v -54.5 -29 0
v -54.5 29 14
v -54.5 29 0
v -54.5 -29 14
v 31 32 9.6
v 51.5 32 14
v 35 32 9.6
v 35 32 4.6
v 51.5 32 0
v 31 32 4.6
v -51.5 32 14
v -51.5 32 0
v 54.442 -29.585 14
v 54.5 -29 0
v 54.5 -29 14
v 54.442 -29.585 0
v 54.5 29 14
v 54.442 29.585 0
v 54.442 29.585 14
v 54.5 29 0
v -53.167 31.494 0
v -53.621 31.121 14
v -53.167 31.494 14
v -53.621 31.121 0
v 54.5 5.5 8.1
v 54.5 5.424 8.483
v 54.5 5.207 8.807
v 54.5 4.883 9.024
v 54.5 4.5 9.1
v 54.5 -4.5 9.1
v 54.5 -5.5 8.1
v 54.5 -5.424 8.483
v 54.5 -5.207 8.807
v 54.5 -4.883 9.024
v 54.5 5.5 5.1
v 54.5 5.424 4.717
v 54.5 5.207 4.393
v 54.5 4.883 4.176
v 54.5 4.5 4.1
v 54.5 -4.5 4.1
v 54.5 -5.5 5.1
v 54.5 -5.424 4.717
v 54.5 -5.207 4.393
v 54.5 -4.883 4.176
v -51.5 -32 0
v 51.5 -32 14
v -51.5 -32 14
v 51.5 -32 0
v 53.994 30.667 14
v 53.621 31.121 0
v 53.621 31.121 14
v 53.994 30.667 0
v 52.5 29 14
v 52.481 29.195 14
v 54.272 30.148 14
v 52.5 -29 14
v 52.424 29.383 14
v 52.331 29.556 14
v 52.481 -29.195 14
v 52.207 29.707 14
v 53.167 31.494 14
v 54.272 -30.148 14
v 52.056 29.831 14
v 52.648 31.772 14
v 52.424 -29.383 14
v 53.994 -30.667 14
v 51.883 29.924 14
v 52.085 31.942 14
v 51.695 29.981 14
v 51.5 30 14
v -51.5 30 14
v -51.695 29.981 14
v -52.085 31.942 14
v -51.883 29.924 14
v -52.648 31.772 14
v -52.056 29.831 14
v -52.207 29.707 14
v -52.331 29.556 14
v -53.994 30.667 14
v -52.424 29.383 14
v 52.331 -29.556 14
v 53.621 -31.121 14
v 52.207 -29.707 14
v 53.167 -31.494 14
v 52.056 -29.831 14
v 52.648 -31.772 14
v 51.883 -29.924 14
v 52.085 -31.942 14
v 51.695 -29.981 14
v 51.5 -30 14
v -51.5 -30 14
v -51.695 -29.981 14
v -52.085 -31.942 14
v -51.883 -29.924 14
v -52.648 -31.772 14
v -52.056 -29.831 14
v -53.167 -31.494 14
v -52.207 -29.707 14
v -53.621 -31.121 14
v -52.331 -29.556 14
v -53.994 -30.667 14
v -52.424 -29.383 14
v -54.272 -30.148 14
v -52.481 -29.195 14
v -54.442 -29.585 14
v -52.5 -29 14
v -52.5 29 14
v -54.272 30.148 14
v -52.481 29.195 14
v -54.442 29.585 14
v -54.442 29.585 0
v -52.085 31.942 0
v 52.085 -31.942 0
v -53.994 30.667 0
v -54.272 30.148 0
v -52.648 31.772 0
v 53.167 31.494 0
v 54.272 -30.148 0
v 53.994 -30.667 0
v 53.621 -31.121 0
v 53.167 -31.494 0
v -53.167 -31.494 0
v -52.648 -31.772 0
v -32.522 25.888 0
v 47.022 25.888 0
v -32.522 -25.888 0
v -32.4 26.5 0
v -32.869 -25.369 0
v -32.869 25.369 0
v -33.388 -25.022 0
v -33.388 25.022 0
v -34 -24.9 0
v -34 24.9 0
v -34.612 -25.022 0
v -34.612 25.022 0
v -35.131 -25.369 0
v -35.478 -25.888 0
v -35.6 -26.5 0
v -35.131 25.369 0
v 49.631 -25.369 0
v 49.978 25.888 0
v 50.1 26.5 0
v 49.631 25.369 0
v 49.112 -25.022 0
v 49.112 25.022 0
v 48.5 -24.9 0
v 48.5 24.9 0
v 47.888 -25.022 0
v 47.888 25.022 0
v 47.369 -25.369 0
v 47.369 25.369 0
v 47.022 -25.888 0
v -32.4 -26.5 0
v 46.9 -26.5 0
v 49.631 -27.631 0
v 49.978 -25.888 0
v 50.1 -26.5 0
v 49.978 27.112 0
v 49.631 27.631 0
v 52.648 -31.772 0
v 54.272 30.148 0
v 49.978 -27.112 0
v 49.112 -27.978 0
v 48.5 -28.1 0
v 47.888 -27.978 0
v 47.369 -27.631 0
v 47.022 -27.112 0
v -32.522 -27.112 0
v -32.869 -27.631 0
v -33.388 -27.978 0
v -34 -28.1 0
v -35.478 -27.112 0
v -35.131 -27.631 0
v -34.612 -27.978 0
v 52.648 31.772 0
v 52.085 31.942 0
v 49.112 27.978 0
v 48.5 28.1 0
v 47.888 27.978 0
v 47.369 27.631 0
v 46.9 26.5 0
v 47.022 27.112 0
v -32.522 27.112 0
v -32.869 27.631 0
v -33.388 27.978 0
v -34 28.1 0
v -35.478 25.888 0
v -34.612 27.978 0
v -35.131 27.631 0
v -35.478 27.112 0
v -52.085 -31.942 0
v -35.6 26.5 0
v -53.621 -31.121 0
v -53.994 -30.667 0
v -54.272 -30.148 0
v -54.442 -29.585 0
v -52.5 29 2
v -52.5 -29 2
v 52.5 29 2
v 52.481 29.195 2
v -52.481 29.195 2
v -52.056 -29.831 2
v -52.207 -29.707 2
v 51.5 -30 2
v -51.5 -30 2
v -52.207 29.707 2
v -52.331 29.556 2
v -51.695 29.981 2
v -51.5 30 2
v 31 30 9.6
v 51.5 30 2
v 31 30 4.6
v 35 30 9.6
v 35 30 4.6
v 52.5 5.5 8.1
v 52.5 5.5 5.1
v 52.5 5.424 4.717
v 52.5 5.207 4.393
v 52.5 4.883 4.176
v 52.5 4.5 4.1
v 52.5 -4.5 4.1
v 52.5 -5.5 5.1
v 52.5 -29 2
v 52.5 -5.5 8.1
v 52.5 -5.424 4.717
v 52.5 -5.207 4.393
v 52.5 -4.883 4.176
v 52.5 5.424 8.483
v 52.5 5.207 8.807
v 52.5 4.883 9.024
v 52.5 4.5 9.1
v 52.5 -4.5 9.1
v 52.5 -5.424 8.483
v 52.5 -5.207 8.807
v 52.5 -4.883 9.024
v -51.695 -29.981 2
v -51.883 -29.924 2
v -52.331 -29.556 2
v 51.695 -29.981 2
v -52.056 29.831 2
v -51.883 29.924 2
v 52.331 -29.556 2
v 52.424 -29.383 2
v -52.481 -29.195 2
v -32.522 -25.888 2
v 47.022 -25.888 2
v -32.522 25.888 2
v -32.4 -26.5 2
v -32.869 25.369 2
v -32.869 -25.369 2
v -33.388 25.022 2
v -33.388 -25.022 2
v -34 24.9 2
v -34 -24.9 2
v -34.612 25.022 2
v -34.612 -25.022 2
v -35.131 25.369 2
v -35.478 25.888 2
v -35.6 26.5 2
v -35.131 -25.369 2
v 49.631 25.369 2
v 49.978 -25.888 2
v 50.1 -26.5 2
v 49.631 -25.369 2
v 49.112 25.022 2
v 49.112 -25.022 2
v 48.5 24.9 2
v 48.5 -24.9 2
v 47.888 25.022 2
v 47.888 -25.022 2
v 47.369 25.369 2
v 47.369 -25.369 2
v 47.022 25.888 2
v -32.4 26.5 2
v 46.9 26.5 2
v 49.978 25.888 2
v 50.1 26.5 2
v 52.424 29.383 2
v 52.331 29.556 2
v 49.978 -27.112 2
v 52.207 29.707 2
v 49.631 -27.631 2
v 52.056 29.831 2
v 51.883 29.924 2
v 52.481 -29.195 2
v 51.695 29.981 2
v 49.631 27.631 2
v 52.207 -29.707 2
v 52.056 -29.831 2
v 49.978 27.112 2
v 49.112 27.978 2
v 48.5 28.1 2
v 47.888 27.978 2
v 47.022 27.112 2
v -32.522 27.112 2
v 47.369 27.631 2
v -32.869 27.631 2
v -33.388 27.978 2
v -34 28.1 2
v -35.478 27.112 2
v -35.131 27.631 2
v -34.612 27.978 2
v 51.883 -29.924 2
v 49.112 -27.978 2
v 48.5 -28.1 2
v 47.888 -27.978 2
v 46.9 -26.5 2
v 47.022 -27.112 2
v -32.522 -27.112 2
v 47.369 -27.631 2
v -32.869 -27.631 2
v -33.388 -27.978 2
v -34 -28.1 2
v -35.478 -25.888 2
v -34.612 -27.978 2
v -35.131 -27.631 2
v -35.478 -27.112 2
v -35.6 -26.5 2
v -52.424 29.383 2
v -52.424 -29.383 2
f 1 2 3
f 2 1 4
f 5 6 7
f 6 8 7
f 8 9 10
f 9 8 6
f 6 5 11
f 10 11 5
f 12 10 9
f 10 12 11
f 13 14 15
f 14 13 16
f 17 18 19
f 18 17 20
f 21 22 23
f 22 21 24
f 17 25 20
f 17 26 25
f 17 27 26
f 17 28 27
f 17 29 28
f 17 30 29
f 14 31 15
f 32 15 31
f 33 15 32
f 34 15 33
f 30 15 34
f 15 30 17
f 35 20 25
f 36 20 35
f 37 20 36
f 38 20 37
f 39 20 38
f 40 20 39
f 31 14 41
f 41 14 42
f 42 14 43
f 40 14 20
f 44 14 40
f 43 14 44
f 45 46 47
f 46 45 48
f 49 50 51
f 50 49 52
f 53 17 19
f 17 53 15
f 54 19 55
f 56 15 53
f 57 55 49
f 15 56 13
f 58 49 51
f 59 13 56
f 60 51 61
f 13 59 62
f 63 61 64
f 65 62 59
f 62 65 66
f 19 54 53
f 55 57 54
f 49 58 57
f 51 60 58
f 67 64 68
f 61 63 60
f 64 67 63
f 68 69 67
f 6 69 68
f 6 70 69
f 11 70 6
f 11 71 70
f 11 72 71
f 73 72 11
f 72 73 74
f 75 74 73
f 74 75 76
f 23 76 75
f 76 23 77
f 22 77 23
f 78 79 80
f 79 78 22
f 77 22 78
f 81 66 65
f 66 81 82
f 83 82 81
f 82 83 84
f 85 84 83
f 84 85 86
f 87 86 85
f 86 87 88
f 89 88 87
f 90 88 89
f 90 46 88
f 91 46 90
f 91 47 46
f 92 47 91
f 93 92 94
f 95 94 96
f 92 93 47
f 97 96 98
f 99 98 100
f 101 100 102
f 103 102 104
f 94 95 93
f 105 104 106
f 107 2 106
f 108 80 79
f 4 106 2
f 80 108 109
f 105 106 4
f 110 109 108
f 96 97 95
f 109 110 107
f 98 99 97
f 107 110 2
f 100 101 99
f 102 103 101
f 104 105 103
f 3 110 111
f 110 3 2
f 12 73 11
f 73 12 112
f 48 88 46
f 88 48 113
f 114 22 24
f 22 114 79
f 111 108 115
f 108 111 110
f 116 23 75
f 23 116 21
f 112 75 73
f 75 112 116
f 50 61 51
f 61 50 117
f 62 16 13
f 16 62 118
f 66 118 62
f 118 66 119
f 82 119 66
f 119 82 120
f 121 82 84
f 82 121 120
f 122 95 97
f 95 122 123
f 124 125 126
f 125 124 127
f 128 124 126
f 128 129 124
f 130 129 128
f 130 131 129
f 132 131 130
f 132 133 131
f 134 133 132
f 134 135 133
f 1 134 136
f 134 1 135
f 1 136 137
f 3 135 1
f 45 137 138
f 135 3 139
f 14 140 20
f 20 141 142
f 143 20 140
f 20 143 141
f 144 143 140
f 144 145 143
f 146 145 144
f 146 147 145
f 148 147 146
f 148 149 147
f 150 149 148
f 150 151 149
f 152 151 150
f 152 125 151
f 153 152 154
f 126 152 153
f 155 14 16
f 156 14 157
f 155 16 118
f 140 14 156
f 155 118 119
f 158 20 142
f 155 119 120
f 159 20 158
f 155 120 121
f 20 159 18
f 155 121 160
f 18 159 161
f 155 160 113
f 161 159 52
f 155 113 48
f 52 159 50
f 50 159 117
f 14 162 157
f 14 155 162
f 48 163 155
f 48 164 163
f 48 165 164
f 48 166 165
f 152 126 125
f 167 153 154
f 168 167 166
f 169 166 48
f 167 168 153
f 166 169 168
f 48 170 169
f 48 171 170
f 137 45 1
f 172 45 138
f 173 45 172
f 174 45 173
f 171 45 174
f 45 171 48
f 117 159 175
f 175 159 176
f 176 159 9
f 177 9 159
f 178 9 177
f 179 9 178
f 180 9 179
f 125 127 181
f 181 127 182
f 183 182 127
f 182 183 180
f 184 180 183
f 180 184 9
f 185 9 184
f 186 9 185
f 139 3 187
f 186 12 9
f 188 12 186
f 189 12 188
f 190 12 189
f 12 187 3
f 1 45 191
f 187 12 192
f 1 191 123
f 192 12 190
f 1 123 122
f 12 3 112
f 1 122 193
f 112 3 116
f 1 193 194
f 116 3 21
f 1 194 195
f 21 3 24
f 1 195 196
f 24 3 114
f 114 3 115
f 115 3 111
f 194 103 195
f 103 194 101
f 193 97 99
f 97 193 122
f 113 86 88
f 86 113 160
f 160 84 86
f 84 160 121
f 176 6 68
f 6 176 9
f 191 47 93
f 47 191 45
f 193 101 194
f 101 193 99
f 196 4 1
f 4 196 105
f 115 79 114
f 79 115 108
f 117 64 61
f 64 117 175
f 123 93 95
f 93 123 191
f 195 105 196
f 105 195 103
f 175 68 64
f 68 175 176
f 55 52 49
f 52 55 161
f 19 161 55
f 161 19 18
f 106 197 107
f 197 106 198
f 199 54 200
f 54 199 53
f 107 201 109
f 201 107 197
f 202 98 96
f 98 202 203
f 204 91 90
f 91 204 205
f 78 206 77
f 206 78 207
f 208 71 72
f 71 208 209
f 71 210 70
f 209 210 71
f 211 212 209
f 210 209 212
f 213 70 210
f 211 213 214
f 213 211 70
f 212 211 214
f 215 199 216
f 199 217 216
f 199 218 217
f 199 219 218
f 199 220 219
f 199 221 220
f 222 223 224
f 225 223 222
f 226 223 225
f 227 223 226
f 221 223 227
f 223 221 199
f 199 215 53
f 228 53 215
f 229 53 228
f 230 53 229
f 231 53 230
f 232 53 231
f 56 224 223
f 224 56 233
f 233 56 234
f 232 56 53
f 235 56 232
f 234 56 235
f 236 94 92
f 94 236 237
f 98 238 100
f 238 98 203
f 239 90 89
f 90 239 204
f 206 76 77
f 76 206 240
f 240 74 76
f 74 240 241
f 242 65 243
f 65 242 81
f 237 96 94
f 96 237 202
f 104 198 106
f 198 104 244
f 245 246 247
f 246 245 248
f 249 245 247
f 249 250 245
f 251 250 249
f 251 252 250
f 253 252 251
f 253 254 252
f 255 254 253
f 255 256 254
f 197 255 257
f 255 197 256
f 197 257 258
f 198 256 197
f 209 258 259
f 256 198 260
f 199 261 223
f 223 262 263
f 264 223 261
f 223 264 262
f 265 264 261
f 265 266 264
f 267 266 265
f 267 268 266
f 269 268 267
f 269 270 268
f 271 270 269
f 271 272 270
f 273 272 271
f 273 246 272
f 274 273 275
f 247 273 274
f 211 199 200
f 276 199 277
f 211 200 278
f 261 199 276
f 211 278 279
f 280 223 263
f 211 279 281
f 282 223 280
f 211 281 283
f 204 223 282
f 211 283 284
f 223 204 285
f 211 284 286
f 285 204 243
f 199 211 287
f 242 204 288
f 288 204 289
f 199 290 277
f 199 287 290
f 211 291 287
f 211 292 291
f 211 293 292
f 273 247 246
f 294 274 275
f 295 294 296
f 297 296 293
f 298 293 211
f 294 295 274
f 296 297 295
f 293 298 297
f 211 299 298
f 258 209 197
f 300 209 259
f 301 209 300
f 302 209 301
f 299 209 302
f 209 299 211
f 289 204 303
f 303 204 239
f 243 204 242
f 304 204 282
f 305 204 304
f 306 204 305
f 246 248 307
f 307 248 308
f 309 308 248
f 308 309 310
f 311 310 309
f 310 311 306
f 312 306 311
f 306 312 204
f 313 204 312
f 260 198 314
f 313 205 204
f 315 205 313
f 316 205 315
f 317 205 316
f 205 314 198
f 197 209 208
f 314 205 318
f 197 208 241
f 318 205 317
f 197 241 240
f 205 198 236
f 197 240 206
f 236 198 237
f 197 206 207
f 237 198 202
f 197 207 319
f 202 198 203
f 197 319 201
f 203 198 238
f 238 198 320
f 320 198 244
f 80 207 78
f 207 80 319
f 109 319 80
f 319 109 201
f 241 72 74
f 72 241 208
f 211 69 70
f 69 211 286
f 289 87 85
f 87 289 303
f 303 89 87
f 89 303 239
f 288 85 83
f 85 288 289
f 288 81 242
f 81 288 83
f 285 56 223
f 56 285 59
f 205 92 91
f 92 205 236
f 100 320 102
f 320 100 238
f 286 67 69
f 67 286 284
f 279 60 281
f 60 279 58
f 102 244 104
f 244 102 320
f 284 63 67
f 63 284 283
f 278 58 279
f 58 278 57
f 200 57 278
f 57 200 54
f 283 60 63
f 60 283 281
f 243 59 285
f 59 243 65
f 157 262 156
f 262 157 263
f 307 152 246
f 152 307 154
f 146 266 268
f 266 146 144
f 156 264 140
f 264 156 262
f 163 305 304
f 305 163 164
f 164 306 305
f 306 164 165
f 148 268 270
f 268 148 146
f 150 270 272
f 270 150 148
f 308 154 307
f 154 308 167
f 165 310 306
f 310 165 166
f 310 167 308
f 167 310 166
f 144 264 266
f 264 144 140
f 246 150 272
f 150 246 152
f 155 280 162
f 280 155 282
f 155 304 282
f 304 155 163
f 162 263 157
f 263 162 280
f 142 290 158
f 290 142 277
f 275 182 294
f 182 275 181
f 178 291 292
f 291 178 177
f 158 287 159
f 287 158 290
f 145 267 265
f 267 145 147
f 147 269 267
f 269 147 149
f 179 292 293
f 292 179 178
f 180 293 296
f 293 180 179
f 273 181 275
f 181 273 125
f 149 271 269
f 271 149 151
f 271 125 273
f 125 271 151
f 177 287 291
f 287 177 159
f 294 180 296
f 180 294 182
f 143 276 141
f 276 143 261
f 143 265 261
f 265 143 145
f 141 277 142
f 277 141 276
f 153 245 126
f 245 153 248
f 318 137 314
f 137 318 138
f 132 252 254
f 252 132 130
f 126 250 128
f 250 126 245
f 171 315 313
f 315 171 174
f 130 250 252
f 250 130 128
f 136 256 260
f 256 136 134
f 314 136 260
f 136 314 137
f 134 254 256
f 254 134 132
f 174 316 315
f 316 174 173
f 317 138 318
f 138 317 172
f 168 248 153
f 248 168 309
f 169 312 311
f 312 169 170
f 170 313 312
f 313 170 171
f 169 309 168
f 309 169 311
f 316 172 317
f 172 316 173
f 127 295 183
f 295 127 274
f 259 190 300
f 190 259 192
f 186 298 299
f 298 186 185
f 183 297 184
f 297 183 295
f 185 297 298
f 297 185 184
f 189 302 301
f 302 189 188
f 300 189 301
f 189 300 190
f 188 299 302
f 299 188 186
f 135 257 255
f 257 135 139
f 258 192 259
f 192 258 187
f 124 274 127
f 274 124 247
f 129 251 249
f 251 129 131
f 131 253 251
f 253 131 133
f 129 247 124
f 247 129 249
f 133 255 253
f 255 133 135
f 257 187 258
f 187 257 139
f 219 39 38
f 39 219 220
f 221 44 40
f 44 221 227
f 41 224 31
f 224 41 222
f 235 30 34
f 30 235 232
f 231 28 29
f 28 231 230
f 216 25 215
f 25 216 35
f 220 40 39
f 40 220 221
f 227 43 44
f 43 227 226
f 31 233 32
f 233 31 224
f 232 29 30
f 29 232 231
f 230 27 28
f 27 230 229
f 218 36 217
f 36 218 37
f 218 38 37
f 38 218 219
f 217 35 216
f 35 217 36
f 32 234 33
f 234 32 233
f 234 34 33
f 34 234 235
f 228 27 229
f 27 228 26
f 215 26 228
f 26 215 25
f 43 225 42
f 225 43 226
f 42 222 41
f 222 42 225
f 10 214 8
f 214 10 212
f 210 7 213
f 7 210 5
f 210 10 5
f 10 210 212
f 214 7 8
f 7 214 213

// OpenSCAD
// MacroPad RP2040 Case (Bottom and Sides)
// Companion to macropad_top_cover.scad
// Parametric design for Adafruit MacroPad RP2040 keyboard controller
// Author: Generated for CircuitPython EVM Controller project
// License: MIT

// =============================================================================
// PARAMETERS - Match your top cover dimensions
// =============================================================================

// RP2040 PCB parameters
pcb_length = 105;          // RP2040 PCB length (mm)
pcb_width = 60;            // RP2040 PCB width (mm)
pcb_thickness = 1.6;       // Standard PCB thickness (mm)
pcb_clearance = 1;         // Space around PCB (mm)
pcb_height_clearance = 8;  // Space above PCB for components (mm)

// Overall case dimensions (should match top cover)
bottom_thickness = 2;      // Thickness of bottom plate (mm)
wall_thickness = 2;        // Thickness of side walls (mm)
corner_radius = 3;         // Rounded corner radius (mm)
inner_corner_radius = 1;   // Rounded inner corner radius

case_length = pcb_length + (wall_thickness * 2);   // Total length of case (mm)
case_width = pcb_width +  + (wall_thickness * 2);  // Total width of case (mm)
case_height = 14;          // Height of case walls (mm)

// Top cover integration
top_cover_thickness = 3;   // Thickness of top cover (for fit calculation)
top_cover_lip = 1;         // How much top cover overlaps case walls (mm)

// USB port cutout
usb_width = 11;             // Width of USB-C port (mm)
usb_height = 5;            // ** Was 4 - Height of USB-C port (mm)
usb_offset_from_edge = 3;  // Distance from PCB edge to USB center (mm)
usb_position_y = 0;        // Y position along case width (0 = center)
usb_corner_radius = 1;     // Rounded corners for USB hole

// PCB mounting holes keep 2mm for wall in mind
mount_hole_diameter = 3;   // Diameter for M3 screws (mm)
mount_hole_positions = [   // [X, Y] positions relative to PCB center
    [-pcb_length/2 + 18.5, -26.5],   // Bottom left
    [pcb_length/2 - 4, -26.5],   // Bottom right  
    [-pcb_length/2 + 18.5, 26.5],    // Top left
    [pcb_length/2 - 4, 26.5]     // Top right
];

// Standoffs for PCB mounting
standoff_height = 6;         // Height of PCB standoffs (mm)
standoff_diameter = 5.2;     // Diameter of standoff base (mm)
standoff_hole_diameter = 2.5; // Hole diameter in standoff for screw (mm)

// 3D printing parameters
clearance = 0.2;           // General clearance (mm)
layer_height = 0.2;        // Your 3D printer layer height (mm)

// Catching indent for Cover support lip
cover_lip_indent = [10, 2.5, 2];


// =============================================================================
// MAIN OBJECT
// =============================================================================

difference() {
    union() {
        // Main case body
        case_body();

        // PCB mounting standoffs
        pcb_standoffs();
    }        

    // Remove internal cavity
    internal_cavity();

    // Remove USB port hole
    usb_port_hole();
    
    // Remove Reset port hole
    reset_port_hole();

    // Remove PCB mounting holes
    pcb_mounting_holes();
    
    // Cover inner lock lips on side walls
    //cover_left_lip();
    //cover_right_lip();
}

// Optional: Show PCB position for reference (comment out for final print)
// %pcb_reference();

// =============================================================================
// MODULES (Functions)
// =============================================================================

// Create the main case body with walls
module case_body() {
    // Bottom plate
    hull() {
        // Four corner cylinders for rounded rectangle base
        translate([-(case_length/2 - corner_radius), -(case_width/2 - corner_radius), 0])
            cylinder(h = bottom_thickness, r = corner_radius, $fn = 32);
        
        translate([+(case_length/2 - corner_radius), -(case_width/2 - corner_radius), 0])
            cylinder(h = bottom_thickness, r = corner_radius, $fn = 32);
        
        translate([+(case_length/2 - corner_radius), +(case_width/2 - corner_radius), 0])
            cylinder(h = bottom_thickness, r = corner_radius, $fn = 32);
        
        translate([-(case_length/2 - corner_radius), +(case_width/2 - corner_radius), 0])
            cylinder(h = bottom_thickness, r = corner_radius, $fn = 32);
    }
    
    // Side walls
    difference() {
        // Outer wall
        hull() {
            translate([-(case_length/2 - corner_radius), -(case_width/2 - corner_radius), 0])
                cylinder(h = case_height, r = corner_radius, $fn = 32);
            
            translate([+(case_length/2 - corner_radius), -(case_width/2 - corner_radius), 0])
                cylinder(h = case_height, r = corner_radius, $fn = 32);
            
            translate([+(case_length/2 - corner_radius), +(case_width/2 - corner_radius), 0])
                cylinder(h = case_height, r = corner_radius, $fn = 32);
            
            translate([-(case_length/2 - corner_radius), +(case_width/2 - corner_radius), 0])
                cylinder(h = case_height, r = corner_radius, $fn = 32);
        }
        
        // Inner cavity (removed in main difference)
        translate([0, 0, bottom_thickness])
            hull() {
                inner_radius = corner_radius - wall_thickness;
                inner_length = case_length - 2 * wall_thickness;
                inner_width = case_width - 2 * wall_thickness;
                
                translate([-(inner_length/2 - inner_radius), -(inner_width/2 - inner_radius), 0])
                    cylinder(h = case_height, r = inner_radius, $fn = 32);
                
                translate([+(inner_length/2 - inner_radius), -(inner_width/2 - inner_radius), 0])
                    cylinder(h = case_height, r = inner_radius, $fn = 32);
                
                translate([+(inner_length/2 - inner_radius), +(inner_width/2 - inner_radius), 0])
                    cylinder(h = case_height, r = inner_radius, $fn = 32);
                
                translate([-(inner_length/2 - inner_radius), +(inner_width/2 - inner_radius), 0])
                    cylinder(h = case_height, r = inner_radius, $fn = 32);
            }
    }
    
    // Top cover lip/ledge
    translate([0, 0, case_height - top_cover_thickness]) {
        difference() {
            // Outer ledge
            hull() {
                translate([-(case_length/2 - corner_radius), -(case_width/2 - corner_radius), 0])
                    cylinder(h = top_cover_thickness, r = corner_radius, $fn = 32);
                
                translate([+(case_length/2 - corner_radius), -(case_width/2 - corner_radius), 0])
                    cylinder(h = top_cover_thickness, r = corner_radius, $fn = 32);
                
                translate([+(case_length/2 - corner_radius), +(case_width/2 - corner_radius), 0])
                    cylinder(h = top_cover_thickness, r = corner_radius, $fn = 32);
                
                translate([-(case_length/2 - corner_radius), +(case_width/2 - corner_radius), 0])
                    cylinder(h = top_cover_thickness, r = corner_radius, $fn = 32);
            }
            
            // Inner cutout for top cover
            hull() {
                ledge_radius = corner_radius - top_cover_lip;
                ledge_length = case_length - 2 * top_cover_lip;
                ledge_width = case_width - 2 * top_cover_lip;
                
                translate([-(ledge_length/2 - ledge_radius), -(ledge_width/2 - ledge_radius), -0.5])
                    cylinder(h = top_cover_thickness + 1, r = ledge_radius, $fn = 32);
                
                translate([+(ledge_length/2 - ledge_radius), -(ledge_width/2 - ledge_radius), -0.5])
                    cylinder(h = top_cover_thickness + 1, r = ledge_radius, $fn = 32);
                
                translate([+(ledge_length/2 - ledge_radius), +(ledge_width/2 - ledge_radius), -0.5])
                    cylinder(h = top_cover_thickness + 1, r = ledge_radius, $fn = 32);
                
                translate([-(ledge_length/2 - ledge_radius), +(ledge_width/2 - ledge_radius), -0.5])
                    cylinder(h = top_cover_thickness + 1, r = ledge_radius, $fn = 32);
            }
        }
    }
}

// Create internal cavity (removed from main body)
module internal_cavity() {
    translate([0, 0, bottom_thickness]) {
        inner_radius = inner_corner_radius;
        inner_length = case_length - 2 * wall_thickness;
        inner_width = case_width - 2 * wall_thickness;
        
        hull() {
            translate([-(inner_length/2 - inner_radius), -(inner_width/2 - inner_radius), 0])
                cylinder(h = case_height, r = inner_radius, $fn = 32);
            
            translate([+(inner_length/2 - inner_radius), -(inner_width/2 - inner_radius), 0])
                cylinder(h = case_height, r = inner_radius, $fn = 32);
            
            translate([+(inner_length/2 - inner_radius), +(inner_width/2 - inner_radius), 0])
                cylinder(h = case_height, r = inner_radius, $fn = 32);
            
            translate([-(inner_length/2 - inner_radius), +(inner_width/2 - inner_radius), 0])
                cylinder(h = case_height, r = inner_radius, $fn = 32);
        }
    }
}

// Create PCB mounting standoffs
module pcb_standoffs() {
    for (pos = mount_hole_positions) {
        translate([pos[0], pos[1], bottom_thickness]) {
            cylinder(
                h = standoff_height, 
                d = standoff_diameter, 
                $fn = 16
            );
        }
    }
}

// Create USB port hole
module usb_port_hole() {
    // Position USB hole on the side wall
    translate([
        (case_length/2 - usb_offset_from_edge), 
        usb_position_y, 
        bottom_thickness + standoff_height + pcb_thickness + usb_height/2 - 5.5
    ]) {
        rotate([0, 90, 0]) {
            // Rounded rectangle for USB port
            hull() {
                translate([-(usb_height/2 - usb_corner_radius), -(usb_width/2 - usb_corner_radius), 0])
                    cylinder(h = wall_thickness + 2, r = usb_corner_radius, $fn = 16);
                
                translate([+(usb_height/2 - usb_corner_radius), -(usb_width/2 - usb_corner_radius), 0])
                    cylinder(h = wall_thickness + 2, r = usb_corner_radius, $fn = 16);
                
                translate([+(usb_height/2 - usb_corner_radius), +(usb_width/2 - usb_corner_radius), 0])
                    cylinder(h = wall_thickness + 2, r = usb_corner_radius, $fn = 16);
                
                translate([-(usb_height/2 - usb_corner_radius), +(usb_width/2 - usb_corner_radius), 0])
                    cylinder(h = wall_thickness + 2, r = usb_corner_radius, $fn = 16);
            }
        }
    }
}

// Create PCB mounting holes
module pcb_mounting_holes() {
    for (pos = mount_hole_positions) {
        translate([pos[0], pos[1], -0.5]) {
            // Through hole for screw
            cylinder(
                h = case_height + 1, 
                d = mount_hole_diameter + clearance, 
                $fn = 16
            );
            
            // Countersink hole in standoff
            translate([0, 0, bottom_thickness]) {
                cylinder(
                    h = standoff_height + 0.5, 
                    d = standoff_hole_diameter + clearance, 
                    $fn = 16
                );
            }
        }
    }
}

// Create Reset port hole
module reset_port_hole() {
    // Position Reset hole on the side wall
    translate([
        - usb_position_y + (pcb_length/2 - 22), 
        (case_width/2 + usb_offset_from_edge - 1), 
        bottom_thickness + standoff_height + pcb_thickness + usb_height/2 - 5
    ]) {
        rotate([0, 90, 0]) {
            // Rounded rectangle for Reset port
            hull() {
                translate([-(usb_height/2 - usb_corner_radius), -(usb_width/2 - usb_corner_radius), 0])
                    cylinder(h = wall_thickness + 2, r = usb_corner_radius, $fn = 16);
                
                translate([+(usb_height/2 - usb_corner_radius), -(usb_width/2 - usb_corner_radius), 0])
                    cylinder(h = wall_thickness + 2, r = usb_corner_radius, $fn = 16);
                
                translate([+(usb_height/2 - usb_corner_radius), +(usb_width/2 - usb_corner_radius), 0])
                    cylinder(h = wall_thickness + 2, r = usb_corner_radius, $fn = 16);
                
                translate([-(usb_height/2 - usb_corner_radius), +(usb_width/2 - usb_corner_radius), 0])
                    cylinder(h = wall_thickness + 2, r = usb_corner_radius, $fn = 16);
            }
        }
    }
}

// Create small PCB lip to lock cover plate in on the left and right
module cover_left_lip() {
    // Position Reset hole on the side wall
    color ("red") translate([
        usb_position_y, 
        (case_width/2 - 2), 
        bottom_thickness + standoff_height + pcb_thickness + usb_height/2 - 2
    ]) {
        cube(cover_lip_indent, center = true);
    }
}

// Create small PCB lip to lock top plate in on the left and right
module cover_right_lip() {
    // Position Reset hole on the side wall
    color ("red") translate([
        -usb_position_y, 
        -(case_width/2 - 2), 
        bottom_thickness + standoff_height + pcb_thickness + usb_height/2 - 2
    ]) {
        cube(cover_lip_indent, center = true);
    }
}


// Reference module to show PCB position (for design verification)
module pcb_reference() {
    translate([0, 0, bottom_thickness + standoff_height]) {
        // PCB outline
        color("green", 0.3) {
            hull() {
                pcb_corner_radius = 2;
                translate([-(pcb_length/2 - pcb_corner_radius), -(pcb_width/2 - pcb_corner_radius), 0])
                    cylinder(h = pcb_thickness, r = pcb_corner_radius, $fn = 16);
                
                translate([+(pcb_length/2 - pcb_corner_radius), -(pcb_width/2 - pcb_corner_radius), 0])
                    cylinder(h = pcb_thickness, r = pcb_corner_radius, $fn = 16);
                
                translate([+(pcb_length/2 - pcb_corner_radius), +(pcb_width/2 - pcb_corner_radius), 0])
                    cylinder(h = pcb_thickness, r = pcb_corner_radius, $fn = 16);
                
                translate([-(pcb_length/2 - pcb_corner_radius), +(pcb_width/2 - pcb_corner_radius), 0])
                    cylinder(h = pcb_thickness, r = pcb_corner_radius, $fn = 16);
            }
        }
        
        // Component clearance volume
        color("blue", 0.1) {
            translate([0, 0, pcb_thickness]) {
                hull() {
                    pcb_corner_radius = 2;
                    translate([-(pcb_length/2 - pcb_corner_radius), -(pcb_width/2 - pcb_corner_radius), 0])
                        cylinder(h = pcb_height_clearance, r = pcb_corner_radius, $fn = 16);
                    
                    translate([+(pcb_length/2 - pcb_corner_radius), -(pcb_width/2 - pcb_corner_radius), 0])
                        cylinder(h = pcb_height_clearance, r = pcb_corner_radius, $fn = 16);
                    
                    translate([+(pcb_length/2 - pcb_corner_radius), +(pcb_width/2 - pcb_corner_radius), 0])
                        cylinder(h = pcb_height_clearance, r = pcb_corner_radius, $fn = 16);
                    
                    translate([-(pcb_length/2 - pcb_corner_radius), +(pcb_width/2 - pcb_corner_radius), 0])
                        cylinder(h = pcb_height_clearance, r = pcb_corner_radius, $fn = 16);
                }
            }
        }
        
        // Mounting holes
        color("red") {
            for (pos = mount_hole_positions) {
                translate([pos[0], pos[1], 0]) {
                    cylinder(h = pcb_thickness, d = 3.2, $fn = 16);
                }
            }
        }
    }
}

// =============================================================================
// CUSTOMIZATION EXAMPLES
// =============================================================================

/*
To customize this case:

1. MATCH YOUR TOP COVER:
   - Use the same case_length and case_width as your top cover
   - Adjust corner_radius to match

2. ADJUST HEIGHT:
   - Increase case_height for more internal space
   - Decrease for a more compact case
   - Ensure USB port still fits properly

3. PCB MOUNTING:
   - Measure your actual PCB mounting hole positions
   - Adjust mount_hole_positions array accordingly
   - Change standoff_height for proper PCB positioning

4. USB PORT:
   - Measure your USB port size and position
   - Adjust usb_width, usb_height, and usb_offset_from_edge
   - Change usb_position_y if USB is not centered on PCB edge

5. WALL THICKNESS:
   - Increase wall_thickness for stronger case
   - Decrease for lighter case (minimum 1.5mm for 3D printing)

Example for different USB position:
usb_offset_from_edge = 5;  // If USB is 5mm from PCB edge
usb_position_y = -10;      // If USB is 10mm toward bottom of PCB
*/

// =============================================================================
// ASSEMBLY NOTES
// =============================================================================

/*
PRINTING TIPS:
- Print with bottom down (as designed)
- No supports needed if overhangs are < 45°
- USB hole might need supports depending on printer
- Recommended layer height: 0.2-0.3mm
- Infill: 20-30% for good strength

ASSEMBLY PROCESS:
1. Insert RP2040 PCB into case
2. Align PCB with standoffs
3. Secure with M3 screws from bottom (4 screws)
4. Install key switches in top cover
5. Place top cover on case (should fit snugly)

HARDWARE NEEDED:
- 4x M3 screws, 6-8mm length
- Optional: M3 washers if screw heads are small

MEASUREMENTS TO VERIFY:
1. Actual RP2040 PCB dimensions
2. Mounting hole positions on your PCB
3. USB port exact position and size
4. Component heights (ensure clearance)
5. Key switch and encoder positions match top cover

Use %pcb_reference(); to visualize PCB position before printing!

*/
